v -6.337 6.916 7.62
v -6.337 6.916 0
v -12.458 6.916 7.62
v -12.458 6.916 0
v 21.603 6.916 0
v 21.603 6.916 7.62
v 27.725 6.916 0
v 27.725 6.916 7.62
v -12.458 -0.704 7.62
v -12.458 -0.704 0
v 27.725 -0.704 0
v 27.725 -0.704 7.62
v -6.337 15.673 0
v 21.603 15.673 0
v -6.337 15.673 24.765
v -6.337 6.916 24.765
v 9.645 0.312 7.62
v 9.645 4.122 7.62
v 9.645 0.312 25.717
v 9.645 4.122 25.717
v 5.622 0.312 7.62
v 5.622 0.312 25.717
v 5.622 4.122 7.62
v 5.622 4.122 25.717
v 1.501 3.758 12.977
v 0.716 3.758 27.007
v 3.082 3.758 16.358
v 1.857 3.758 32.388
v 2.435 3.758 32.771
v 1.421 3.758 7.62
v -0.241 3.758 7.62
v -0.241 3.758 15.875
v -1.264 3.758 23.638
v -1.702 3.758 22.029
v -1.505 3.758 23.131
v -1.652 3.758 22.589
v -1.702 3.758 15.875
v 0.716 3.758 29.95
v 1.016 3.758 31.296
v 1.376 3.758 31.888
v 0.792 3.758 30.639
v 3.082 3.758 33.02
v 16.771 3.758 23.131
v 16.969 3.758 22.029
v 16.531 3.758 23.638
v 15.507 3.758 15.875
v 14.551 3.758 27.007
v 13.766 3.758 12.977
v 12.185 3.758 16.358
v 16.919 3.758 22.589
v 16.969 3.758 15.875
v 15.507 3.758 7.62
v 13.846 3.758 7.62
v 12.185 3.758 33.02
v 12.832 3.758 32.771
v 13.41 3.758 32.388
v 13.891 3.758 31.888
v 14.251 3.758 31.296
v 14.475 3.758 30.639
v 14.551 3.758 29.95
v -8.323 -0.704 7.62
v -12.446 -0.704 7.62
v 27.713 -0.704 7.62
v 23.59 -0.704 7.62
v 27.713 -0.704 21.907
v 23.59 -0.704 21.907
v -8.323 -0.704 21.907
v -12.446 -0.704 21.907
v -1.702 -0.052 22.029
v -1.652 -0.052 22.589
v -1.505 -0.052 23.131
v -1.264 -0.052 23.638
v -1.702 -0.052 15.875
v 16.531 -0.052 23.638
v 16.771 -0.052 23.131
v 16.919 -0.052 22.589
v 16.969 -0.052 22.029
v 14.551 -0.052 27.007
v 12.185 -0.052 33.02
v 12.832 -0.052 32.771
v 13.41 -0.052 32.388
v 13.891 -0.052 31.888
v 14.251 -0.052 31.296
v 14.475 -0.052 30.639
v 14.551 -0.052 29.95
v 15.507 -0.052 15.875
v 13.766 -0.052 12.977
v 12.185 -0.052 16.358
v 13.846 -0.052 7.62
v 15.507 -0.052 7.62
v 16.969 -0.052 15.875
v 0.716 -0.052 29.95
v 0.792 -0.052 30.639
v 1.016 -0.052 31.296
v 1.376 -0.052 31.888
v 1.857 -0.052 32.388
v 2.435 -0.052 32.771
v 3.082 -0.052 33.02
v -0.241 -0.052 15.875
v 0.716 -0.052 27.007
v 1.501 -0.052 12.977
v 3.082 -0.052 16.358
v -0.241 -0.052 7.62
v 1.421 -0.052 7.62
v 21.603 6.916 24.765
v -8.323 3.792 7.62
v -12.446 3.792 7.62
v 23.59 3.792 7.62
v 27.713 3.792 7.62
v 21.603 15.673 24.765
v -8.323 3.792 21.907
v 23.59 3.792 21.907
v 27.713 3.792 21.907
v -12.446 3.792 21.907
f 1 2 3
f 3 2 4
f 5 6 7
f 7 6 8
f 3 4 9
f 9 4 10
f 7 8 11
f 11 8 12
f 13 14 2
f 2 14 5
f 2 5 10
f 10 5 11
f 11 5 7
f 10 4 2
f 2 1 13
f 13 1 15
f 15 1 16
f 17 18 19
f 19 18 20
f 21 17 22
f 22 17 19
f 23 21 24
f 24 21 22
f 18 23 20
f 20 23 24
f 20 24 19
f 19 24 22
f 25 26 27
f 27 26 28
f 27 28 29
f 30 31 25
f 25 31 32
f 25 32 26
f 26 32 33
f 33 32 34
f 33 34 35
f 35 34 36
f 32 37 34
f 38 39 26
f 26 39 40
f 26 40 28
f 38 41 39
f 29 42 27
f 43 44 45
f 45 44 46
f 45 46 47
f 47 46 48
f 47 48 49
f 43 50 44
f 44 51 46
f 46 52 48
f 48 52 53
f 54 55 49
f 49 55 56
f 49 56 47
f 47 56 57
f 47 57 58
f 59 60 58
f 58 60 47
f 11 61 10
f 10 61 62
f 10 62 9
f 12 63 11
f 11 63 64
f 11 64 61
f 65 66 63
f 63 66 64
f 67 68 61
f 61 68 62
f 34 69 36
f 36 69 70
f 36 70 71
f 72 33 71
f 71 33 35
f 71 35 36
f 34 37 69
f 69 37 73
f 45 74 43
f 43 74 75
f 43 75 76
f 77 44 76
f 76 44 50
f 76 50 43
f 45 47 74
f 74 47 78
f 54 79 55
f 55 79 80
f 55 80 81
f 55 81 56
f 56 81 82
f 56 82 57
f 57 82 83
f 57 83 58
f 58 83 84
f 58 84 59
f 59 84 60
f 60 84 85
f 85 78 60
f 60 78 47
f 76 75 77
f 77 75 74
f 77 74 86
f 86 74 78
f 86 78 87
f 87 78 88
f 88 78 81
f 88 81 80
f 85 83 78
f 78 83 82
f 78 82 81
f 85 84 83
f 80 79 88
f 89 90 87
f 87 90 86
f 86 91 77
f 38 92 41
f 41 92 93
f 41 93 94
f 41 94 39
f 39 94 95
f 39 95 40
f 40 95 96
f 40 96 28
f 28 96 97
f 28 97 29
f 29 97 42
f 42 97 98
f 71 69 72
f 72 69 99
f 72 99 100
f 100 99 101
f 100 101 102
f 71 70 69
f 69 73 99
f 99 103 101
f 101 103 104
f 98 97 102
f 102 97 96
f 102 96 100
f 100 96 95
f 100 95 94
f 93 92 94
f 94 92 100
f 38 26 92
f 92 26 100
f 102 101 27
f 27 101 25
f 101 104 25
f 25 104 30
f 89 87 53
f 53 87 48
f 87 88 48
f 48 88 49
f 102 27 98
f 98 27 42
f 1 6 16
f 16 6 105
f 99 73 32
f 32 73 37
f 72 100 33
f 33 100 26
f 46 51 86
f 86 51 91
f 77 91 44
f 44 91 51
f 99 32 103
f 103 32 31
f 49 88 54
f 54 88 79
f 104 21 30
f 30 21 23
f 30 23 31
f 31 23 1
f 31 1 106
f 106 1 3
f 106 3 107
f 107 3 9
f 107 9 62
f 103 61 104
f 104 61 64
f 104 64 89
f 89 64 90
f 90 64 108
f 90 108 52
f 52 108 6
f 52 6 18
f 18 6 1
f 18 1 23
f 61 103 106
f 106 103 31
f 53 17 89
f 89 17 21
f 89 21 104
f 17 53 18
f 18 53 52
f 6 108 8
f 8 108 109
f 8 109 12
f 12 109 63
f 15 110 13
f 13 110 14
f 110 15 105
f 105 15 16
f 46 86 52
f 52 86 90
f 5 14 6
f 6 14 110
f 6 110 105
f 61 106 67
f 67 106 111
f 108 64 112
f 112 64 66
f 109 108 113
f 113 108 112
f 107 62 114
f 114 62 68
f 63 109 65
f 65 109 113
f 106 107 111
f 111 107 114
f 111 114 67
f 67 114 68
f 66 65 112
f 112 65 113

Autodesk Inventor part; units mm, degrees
ref_plane "YZ Plane" through (0, 0, 0) normal (1, 0, 0) x (0, 1, 0)
ref_plane "XZ Plane" through (0, 0, 0) normal (0, 1, 0) x (-1, 0, 0)
ref_plane "XY Plane" through (0, 0, 0) normal (0, 0, 1) x (1, 0, 0)
sketch "Sketch1" plane through (0, 0, 0) normal (0, 0, 1) x (1, 0, 0)
  line L0 (-6.3366, 6.9163) -> (21.6034, 6.9163)
  line L1 (21.6034, 6.9163) -> (21.6034, -8.3237)
  line L2 (21.6034, -8.3237) -> (-6.3366, -8.3237)
  line L3 (-6.3366, -8.3237) -> (-6.3366, 6.9163)
  point P0 (0, 0)
  dimension "d0" = 27.94
  dimension "d1" = 15.24
extrude "Extrusion1" add sketch "Sketch1" along normal blind 7.62
sketch "Sketch2" plane through (0, 0, 7.62) normal (0, 0, 1) x (1, 0, 0)
  line L0 (-6.3366, 6.9163) -> (-6.3366, -8.3237) projected
  line L1 (21.6034, -8.3237) -> (21.6034, 6.9163) projected
  line L2 (21.6034, -0.052) -> (21.6034, 2.361)
  line L3 (-6.3366, 2.361) -> (-6.3366, -0.052)
  line L4 (21.6034, 6.9163) -> (-6.3366, 6.9163) projected
  line L5 (-6.3366, -8.3237) -> (21.6034, -8.3237) projected
  line L6 (0.9631, 2.361) -> (-0.2406, 2.361)
  line L7 (-0.2406, -0.052) -> (0.9631, -0.052)
  line L8 (-0.2406, -0.052) -> (-0.2406, 2.361)
  line L9 (-0.2406, -0.052) -> (3.0821, -0.052)
  line L10 (3.0821, -0.052) -> (3.0821, 2.361)
  line L11 (3.0821, 2.361) -> (-0.2406, 2.361)
  line L12 (-0.2406, 2.361) -> (-0.2406, -0.052)
  line L13 (14.3038, 2.361) -> (15.5074, 2.361)
  line L14 (15.5074, -0.052) -> (14.3038, -0.052)
  line L15 (15.5074, -0.052) -> (15.5074, 2.361)
  line L16 (15.5074, -0.052) -> (12.1847, -0.052)
  line L17 (12.1847, -0.052) -> (12.1847, 2.361)
  line L18 (12.1847, 2.361) -> (15.5074, 2.361)
  line L19 (15.5074, 2.361) -> (15.5074, -0.052)
  line L20 (-6.3366, -0.7037) -> (21.6034, -0.7037)
  line L21 (-6.3366, 2.361) -> (21.6034, 2.361)
  line L22 (21.6034, 2.361) -> (21.6034, -0.052)
  line L23 (21.6034, -0.052) -> (-6.3366, -0.052)
  line L24 (-6.3366, -0.052) -> (-6.3366, 2.361)
  point P0 (0, 0)
  point P1 (-0.2406, 1.1545)
  point P2 (15.2669, -0.3643)
  point P3 (15.5074, 1.1545)
  point P4 (15.5074, -0.052)
  point P5 (21.6034, -0.052)
  point P6 (15.5074, 2.361)
  point P7 (-6.3366, -0.052)
  point P8 (-0.2406, -0.052)
  point P9 (-0.2406, 2.361)
  point P10 (-6.3366, 2.361)
  point P11 (3.0821, -0.052)
  point P12 (12.1847, -0.052)
  point P13 (12.1847, 2.361)
  point P14 (3.0821, 2.361)
  dimension "d6" = 6.096
extrude "Extrusion2" add sketch "Sketch2" along normal blind 8.7376 contours L6 L11 L10 L9 L7 L8 | L15 L14 L16 L17 L18 L13
sketch "Sketch3" plane through (-0.2406, 2.361, 7.62) normal (0, 1, 0) x (1, 0, 0)
  line L0 (3.3227, -8.7376) -> (0, -8.7376) projected
  line L1 (-6.096, 7.62) -> (21.844, 7.62) projected
  line L2 (3.3227, -11.3552) -> (3.3227, -8.7376)
  line L3 (12.4253, -11.3552) -> (12.4253, -8.7376)
  line L4 (17.2091, -8.255) -> (17.2091, -15.2732)
  line L5 (17.2091, -15.2732) -> (14.9854, -19.057)
  line L6 (14.9854, -19.057) -> (12.4253, -19.057)
  line L7 (12.4253, -19.057) -> (12.4253, -8.7376)
  line L8 (7.874, 7.62) -> (7.874, -24.8322)
  line L9 (3.3227, -11.3552) -> (3.3227, -8.7376)
  line L10 (-1.4611, -8.255) -> (-1.4611, -15.2732)
  line L11 (-1.4611, -15.2732) -> (0.7626, -19.057)
  line L12 (0.7626, -19.057) -> (3.3227, -19.057)
  line L13 (3.3227, -19.057) -> (3.3227, -8.7376)
  line L14 (17.2091, -8.255) -> (12.4253, -8.255)
  line L15 (12.4253, 0) -> (12.4253, -8.7376) projected
  line L16 (12.4253, -8.255) -> (12.4253, -8.7376)
  line L17 (-1.4611, -8.255) -> (3.3227, -8.255)
  line L18 (3.3227, 0) -> (3.3227, -8.7376) projected
  line L19 (3.3227, -8.255) -> (3.3227, -8.7376)
  point P0 (0.2406, 7.62)
extrude "Extrusion4" add sketch "Sketch2" along normal blind 25.4 contours L6 L11 L10 L9 L7 L8 | L15 L14 L16 L17 L18 L13
sketch "Sketch4" plane through (-6.3366, 6.9163, 0) normal (0, 1, 0) x (1, 0, 0)
  point P0 (6.3366, 0)
sketch "Sketch5" plane through (0, 0, 7.62) normal (0, 0, 1) x (1, 0, 0)
  line L0 (21.6034, 6.9163) -> (-6.3366, 6.9163) projected
  line L1 (-6.3366, 15.6735) -> (21.6034, 15.6735)
  line L2 (21.6034, 15.6735) -> (21.6034, 6.9163)
  line L3 (21.6034, 6.9163) -> (-6.3366, 6.9163)
  line L4 (-6.3366, 6.9163) -> (-6.3366, 15.6735)
  point P0 (0, 0)
extrude "Extrusion5" add sketch "Sketch5" along normal blind 17.145 and the other way blind 7.62
extrude "Extrusion6" cut sketch "Sketch2" against normal blind 25.4 contours L20 L1 L5 L0
extrude "Extrusion7" add sketch "Sketch2" along normal blind 4.7625 contours L21 L8 L23 L0 | L1 L23 L15 L21 | L21 L17 L23 L10
extrude "Extrusion8" add sketch "Sketch3" against normal up to surface (2.413 mm away)
sketch "Sketch6" plane through (-6.3366, -0.052, 7.62) normal (0, -1, 0) x (1, 0, 0)
  line L0 (27.94, 0) -> (27.94, 4.7625) projected
  line L1 (21.844, 4.7625) -> (21.844, 8.255) projected
  line L2 (27.94, 0) -> (21.844, 0)
  line L3 (21.844, 0) -> (21.844, 4.7625)
  line L4 (21.844, 4.7625) -> (27.94, 4.7625)
  line L5 (27.94, 4.7625) -> (27.94, 0)
  line L6 (18.5213, 4.7625) -> (18.5213, 25.4) projected
  line L7 (18.5213, 4.7625) -> (9.4187, 4.7625)
  line L8 (9.4187, 4.7625) -> (9.4187, 0)
  line L9 (9.4187, 0) -> (18.5213, 0)
  line L10 (18.5213, 0) -> (18.5213, 4.7625)
  line L11 (6.096, 4.7625) -> (6.096, 8.255) projected
  line L12 (0, 0) -> (0, 4.7625) projected
  line L13 (6.096, 4.7625) -> (0, 4.7625)
  line L14 (0, 4.7625) -> (0, 0)
  line L15 (0, 0) -> (6.096, 0)
  line L16 (6.096, 0) -> (6.096, 4.7625)
  point P0 (6.3366, -7.62)
  point P1 (21.844, 8.7376)
  point P2 (18.5213, 19.057)
  point P3 (6.096, 8.7376)
extrude "Extrusion9" cut sketch "Sketch6" against normal up to surface (6.9683 mm away)
sketch "Sketch7" plane through (12.1847, -0.052, 7.62) normal (0, -1, 0) x (1, 0, 0)
  line L0 (3.3227, 17.7594) -> (4.7838, 15.2732) projected
  line L1 (3.3227, 17.7594) -> (2.3659, 19.3874)
  line L2 (2.3659, 19.3874) -> (2.3659, 25.4)
  line L3 (3.3227, 25.4) -> (0, 25.4) projected
  line L4 (3.3227, 17.7594) -> (3.3227, 25.4) projected
  line L5 (2.3659, 25.4) -> (3.3227, 25.4)
  line L6 (3.3227, 25.4) -> (3.3227, 17.7594)
  line L7 (-18.5213, -7.62) -> (9.4187, -7.62) projected
  line L8 (-12.4253, 17.7594) -> (-11.4685, 19.3874)
  line L9 (-11.4685, 19.3874) -> (-11.4685, 25.4)
  line L10 (-12.4253, 17.7594) -> (-12.4253, 25.4)
  line L11 (-11.4685, 25.4) -> (-12.4253, 25.4)
  line L12 (-12.4253, 25.4) -> (-12.4253, 17.7594)
  line L13 (-12.4253, 8.7376) -> (-13.8865, 8.255) projected
  line L14 (-9.1825, 8.7376) -> (-9.1026, 8.7376)
  line L15 (-9.1026, 0) -> (-9.1026, 25.4) projected
  line L16 (-10.6842, 5.3569) -> (-10.764, 0)
  line L17 (-9.1026, 0) -> (-12.4253, 0) projected
  line L18 (-9.1026, 0) -> (-9.1026, 8.7376)
  line L19 (-10.764, 0) -> (-9.1026, 0)
  line L20 (9.4187, -7.62) -> (-18.5213, -7.62) projected
  line L21 (-18.5213, 17.145) -> (9.4187, 17.145) projected
  line L22 (1.5816, 5.3569) -> (1.6613, 0)
  line L23 (1.6613, 0) -> (0, 0)
  line L24 (0, 0) -> (0, 8.7376)
  line L25 (-4.5513, -7.62) -> (-4.5513, 0)
  line L26 (-4.5513, 11.274) -> (-4.5513, 11.3382)
  line L27 (-9.1026, 8.7376) -> (-10.6842, 5.3569)
  line L28 (0, 8.7376) -> (1.5816, 5.3569)
  point P0 (-12.1847, -7.62)
extrude "Extrusion10" cut sketch "Sketch7" against normal up to surface (6.9683 mm away)
fillet "Fillet1" radius 3.175 4 edges at (0.7162, 1.1545, 33.02) (14.5507, 1.1545, 33.02) (16.9686, 1.1545, 22.8932) (-1.7017, 1.1545, 22.8932)
sketch "Sketch8" plane through (-0.2406, -0.052, 7.62) normal (0, -1, 0) x (1, 0, 0)
  arc A0 (-1.0234, 16.018) -> (-1.4611, 14.4093) centre (1.7139, 14.4093) ccw projected
  line L0 (-1.4611, 8.255) -> (-1.4611, 14.4093) projected
  line L1 (0, 0) -> (0, 8.255) projected
  line L2 (1.6613, 0) -> (0, 0) projected
  line L3 (1.6613, 0) -> (1.7411, 5.3569) projected
  line L4 (1.7411, 5.3569) -> (3.3227, 8.7376) projected
  line L5 (3.3227, 8.7376) -> (3.3227, 25.4) projected
  arc A1 (3.3227, 25.4) -> (0.9568, 22.3298) centre (4.1318, 22.3298) ccw projected
  line L6 (0.9568, 22.3298) -> (0.9568, 19.3874) projected
  line L7 (0.9568, 19.3874) -> (-1.0234, 16.018) projected
  arc A2 (17.2091, 14.4093) -> (16.7714, 16.018) centre (14.0341, 14.4093) ccw projected
  line L8 (16.7714, 16.018) -> (14.7912, 19.3874) projected
  line L9 (14.7912, 19.3874) -> (14.7912, 22.3298) projected
  arc A3 (14.7912, 22.3298) -> (12.4253, 25.4) centre (11.6162, 22.3298) ccw projected
  line L10 (12.4253, 8.7376) -> (12.4253, 25.4) projected
  line L11 (12.4253, 8.7376) -> (14.0069, 5.3569) projected
  line L12 (14.0069, 5.3569) -> (14.0867, 0) projected
  line L13 (15.748, 0) -> (14.0867, 0) projected
  line L14 (15.748, 0) -> (15.748, 8.255) projected
  line L15 (17.2091, 14.4093) -> (17.2091, 8.255) projected
  line L16 (17.2091, 8.255) -> (15.748, 8.255) projected
  line L17 (0, 8.255) -> (-1.4611, 8.255) projected
  point P0 (0.2406, -7.62)
extrude "Extrusion11" add sketch "Sketch8" against normal blind 3.81
sketch "Sketch9" plane through (0, 0, 7.62) normal (0, 0, 1) x (1, 0, 0)
  line L0 (9.6447, 0.3123) -> (5.6221, 0.3123)
  line L1 (5.6221, 0.3123) -> (5.6221, 4.1223)
  line L2 (5.6221, 4.1223) -> (9.6447, 4.1223)
  line L3 (9.6447, 4.1223) -> (9.6447, 0.3123)
  line L4 (12.1847, -0.052) -> (12.1847, 3.758) projected
  line L5 (3.0821, -0.052) -> (3.0821, 3.758) projected
  point P0 (0, 0)
  dimension "d30" = 2.54
  dimension "d31" = 2.54
extrude "Extrusion12" add sketch "Sketch9" along normal blind 18.0975
sketch "Sketch10" plane through (21.6034, 6.9163, 24.765) normal (1, 0, 0) x (0, 0, -1)
  line L0 (17.145, 0) -> (0, 0) projected
  line L1 (24.765, -7.62) -> (17.145, -7.62) projected
  line L2 (17.145, 0) -> (24.765, 0)
  line L3 (24.765, 0) -> (24.765, -7.62)
  line L4 (24.765, -7.62) -> (17.145, -7.62)
  line L5 (17.145, -7.62) -> (17.145, 0)
  point P0 (24.765, -6.9163)
extrude "Extrusion13" add sketch "Sketch10" along normal blind 6.1214 and the other way blind 34.0614
sketch "Sketch11" plane through (0, 0, 7.62) normal (0, 0, 1) x (1, 0, 0)
  line L0 (21.6034, 15.6735) -> (-6.3366, 15.6735) projected
  line L1 (9.6447, 0.3123) -> (5.6221, 0.3123) projected
  line L2 (-12.458, -0.7037) -> (-12.458, 6.9163) projected
  line L3 (-12.458, -0.7037) -> (27.7248, -0.7037) projected
  line L4 (-11.1046, -0.7037) -> (-12.458, -0.7037)
  line L5 (-12.458, -0.7037) -> (-12.458, 4.1961)
  line L6 (21.6034, -0.7037) -> (27.7131, -0.7037)
  line L7 (27.7131, -0.7037) -> (27.7131, 4.8182)
  line L8 (21.6034, 4.8182) -> (21.6034, -0.7037)
  line L9 (-6.3366, -0.7037) -> (-12.4462, -0.7037)
  line L10 (-12.4462, -0.7037) -> (-12.4462, 4.8182)
  line L11 (-6.3366, 4.8182) -> (-6.3366, -0.7037)
  line L12 (21.6034, 6.9163) -> (27.7248, 6.9163) projected
  line L13 (7.6334, 0.3123) -> (7.6334, -0.7037)
  line L14 (-12.4462, 3.7917) -> (-8.3234, 3.7917)
  line L15 (-8.3234, 3.7917) -> (-8.3234, -0.7037)
  line L16 (27.7248, -0.7037) -> (27.7248, 6.9163)
  line L17 (27.7248, -0.7037) -> (-12.458, -0.7037)
  line L18 (26.3715, -0.7037) -> (27.7248, -0.7037)
  line L19 (27.7248, -0.7037) -> (27.7248, 4.1961)
  line L20 (21.6034, -0.7037) -> (27.7131, -0.7037)
  line L21 (27.7131, -0.7037) -> (27.7131, 4.8182)
  line L22 (27.7131, 3.7917) -> (23.5902, 3.7917)
  line L23 (23.5902, 3.7917) -> (23.5902, -0.7037)
  point P0 (0, 0)
  point P1 (22.941, 6.9163)
  point P2 (-7.6742, 6.9163)
  point P3 (-7.6742, 3.7917)
  point P4 (-8.3234, -0.7037)
  point P5 (23.5902, -0.7037)
extrude "Extrusion15" add sketch "Sketch11" along normal blind 14.2875
properties part number "Attachment7"
